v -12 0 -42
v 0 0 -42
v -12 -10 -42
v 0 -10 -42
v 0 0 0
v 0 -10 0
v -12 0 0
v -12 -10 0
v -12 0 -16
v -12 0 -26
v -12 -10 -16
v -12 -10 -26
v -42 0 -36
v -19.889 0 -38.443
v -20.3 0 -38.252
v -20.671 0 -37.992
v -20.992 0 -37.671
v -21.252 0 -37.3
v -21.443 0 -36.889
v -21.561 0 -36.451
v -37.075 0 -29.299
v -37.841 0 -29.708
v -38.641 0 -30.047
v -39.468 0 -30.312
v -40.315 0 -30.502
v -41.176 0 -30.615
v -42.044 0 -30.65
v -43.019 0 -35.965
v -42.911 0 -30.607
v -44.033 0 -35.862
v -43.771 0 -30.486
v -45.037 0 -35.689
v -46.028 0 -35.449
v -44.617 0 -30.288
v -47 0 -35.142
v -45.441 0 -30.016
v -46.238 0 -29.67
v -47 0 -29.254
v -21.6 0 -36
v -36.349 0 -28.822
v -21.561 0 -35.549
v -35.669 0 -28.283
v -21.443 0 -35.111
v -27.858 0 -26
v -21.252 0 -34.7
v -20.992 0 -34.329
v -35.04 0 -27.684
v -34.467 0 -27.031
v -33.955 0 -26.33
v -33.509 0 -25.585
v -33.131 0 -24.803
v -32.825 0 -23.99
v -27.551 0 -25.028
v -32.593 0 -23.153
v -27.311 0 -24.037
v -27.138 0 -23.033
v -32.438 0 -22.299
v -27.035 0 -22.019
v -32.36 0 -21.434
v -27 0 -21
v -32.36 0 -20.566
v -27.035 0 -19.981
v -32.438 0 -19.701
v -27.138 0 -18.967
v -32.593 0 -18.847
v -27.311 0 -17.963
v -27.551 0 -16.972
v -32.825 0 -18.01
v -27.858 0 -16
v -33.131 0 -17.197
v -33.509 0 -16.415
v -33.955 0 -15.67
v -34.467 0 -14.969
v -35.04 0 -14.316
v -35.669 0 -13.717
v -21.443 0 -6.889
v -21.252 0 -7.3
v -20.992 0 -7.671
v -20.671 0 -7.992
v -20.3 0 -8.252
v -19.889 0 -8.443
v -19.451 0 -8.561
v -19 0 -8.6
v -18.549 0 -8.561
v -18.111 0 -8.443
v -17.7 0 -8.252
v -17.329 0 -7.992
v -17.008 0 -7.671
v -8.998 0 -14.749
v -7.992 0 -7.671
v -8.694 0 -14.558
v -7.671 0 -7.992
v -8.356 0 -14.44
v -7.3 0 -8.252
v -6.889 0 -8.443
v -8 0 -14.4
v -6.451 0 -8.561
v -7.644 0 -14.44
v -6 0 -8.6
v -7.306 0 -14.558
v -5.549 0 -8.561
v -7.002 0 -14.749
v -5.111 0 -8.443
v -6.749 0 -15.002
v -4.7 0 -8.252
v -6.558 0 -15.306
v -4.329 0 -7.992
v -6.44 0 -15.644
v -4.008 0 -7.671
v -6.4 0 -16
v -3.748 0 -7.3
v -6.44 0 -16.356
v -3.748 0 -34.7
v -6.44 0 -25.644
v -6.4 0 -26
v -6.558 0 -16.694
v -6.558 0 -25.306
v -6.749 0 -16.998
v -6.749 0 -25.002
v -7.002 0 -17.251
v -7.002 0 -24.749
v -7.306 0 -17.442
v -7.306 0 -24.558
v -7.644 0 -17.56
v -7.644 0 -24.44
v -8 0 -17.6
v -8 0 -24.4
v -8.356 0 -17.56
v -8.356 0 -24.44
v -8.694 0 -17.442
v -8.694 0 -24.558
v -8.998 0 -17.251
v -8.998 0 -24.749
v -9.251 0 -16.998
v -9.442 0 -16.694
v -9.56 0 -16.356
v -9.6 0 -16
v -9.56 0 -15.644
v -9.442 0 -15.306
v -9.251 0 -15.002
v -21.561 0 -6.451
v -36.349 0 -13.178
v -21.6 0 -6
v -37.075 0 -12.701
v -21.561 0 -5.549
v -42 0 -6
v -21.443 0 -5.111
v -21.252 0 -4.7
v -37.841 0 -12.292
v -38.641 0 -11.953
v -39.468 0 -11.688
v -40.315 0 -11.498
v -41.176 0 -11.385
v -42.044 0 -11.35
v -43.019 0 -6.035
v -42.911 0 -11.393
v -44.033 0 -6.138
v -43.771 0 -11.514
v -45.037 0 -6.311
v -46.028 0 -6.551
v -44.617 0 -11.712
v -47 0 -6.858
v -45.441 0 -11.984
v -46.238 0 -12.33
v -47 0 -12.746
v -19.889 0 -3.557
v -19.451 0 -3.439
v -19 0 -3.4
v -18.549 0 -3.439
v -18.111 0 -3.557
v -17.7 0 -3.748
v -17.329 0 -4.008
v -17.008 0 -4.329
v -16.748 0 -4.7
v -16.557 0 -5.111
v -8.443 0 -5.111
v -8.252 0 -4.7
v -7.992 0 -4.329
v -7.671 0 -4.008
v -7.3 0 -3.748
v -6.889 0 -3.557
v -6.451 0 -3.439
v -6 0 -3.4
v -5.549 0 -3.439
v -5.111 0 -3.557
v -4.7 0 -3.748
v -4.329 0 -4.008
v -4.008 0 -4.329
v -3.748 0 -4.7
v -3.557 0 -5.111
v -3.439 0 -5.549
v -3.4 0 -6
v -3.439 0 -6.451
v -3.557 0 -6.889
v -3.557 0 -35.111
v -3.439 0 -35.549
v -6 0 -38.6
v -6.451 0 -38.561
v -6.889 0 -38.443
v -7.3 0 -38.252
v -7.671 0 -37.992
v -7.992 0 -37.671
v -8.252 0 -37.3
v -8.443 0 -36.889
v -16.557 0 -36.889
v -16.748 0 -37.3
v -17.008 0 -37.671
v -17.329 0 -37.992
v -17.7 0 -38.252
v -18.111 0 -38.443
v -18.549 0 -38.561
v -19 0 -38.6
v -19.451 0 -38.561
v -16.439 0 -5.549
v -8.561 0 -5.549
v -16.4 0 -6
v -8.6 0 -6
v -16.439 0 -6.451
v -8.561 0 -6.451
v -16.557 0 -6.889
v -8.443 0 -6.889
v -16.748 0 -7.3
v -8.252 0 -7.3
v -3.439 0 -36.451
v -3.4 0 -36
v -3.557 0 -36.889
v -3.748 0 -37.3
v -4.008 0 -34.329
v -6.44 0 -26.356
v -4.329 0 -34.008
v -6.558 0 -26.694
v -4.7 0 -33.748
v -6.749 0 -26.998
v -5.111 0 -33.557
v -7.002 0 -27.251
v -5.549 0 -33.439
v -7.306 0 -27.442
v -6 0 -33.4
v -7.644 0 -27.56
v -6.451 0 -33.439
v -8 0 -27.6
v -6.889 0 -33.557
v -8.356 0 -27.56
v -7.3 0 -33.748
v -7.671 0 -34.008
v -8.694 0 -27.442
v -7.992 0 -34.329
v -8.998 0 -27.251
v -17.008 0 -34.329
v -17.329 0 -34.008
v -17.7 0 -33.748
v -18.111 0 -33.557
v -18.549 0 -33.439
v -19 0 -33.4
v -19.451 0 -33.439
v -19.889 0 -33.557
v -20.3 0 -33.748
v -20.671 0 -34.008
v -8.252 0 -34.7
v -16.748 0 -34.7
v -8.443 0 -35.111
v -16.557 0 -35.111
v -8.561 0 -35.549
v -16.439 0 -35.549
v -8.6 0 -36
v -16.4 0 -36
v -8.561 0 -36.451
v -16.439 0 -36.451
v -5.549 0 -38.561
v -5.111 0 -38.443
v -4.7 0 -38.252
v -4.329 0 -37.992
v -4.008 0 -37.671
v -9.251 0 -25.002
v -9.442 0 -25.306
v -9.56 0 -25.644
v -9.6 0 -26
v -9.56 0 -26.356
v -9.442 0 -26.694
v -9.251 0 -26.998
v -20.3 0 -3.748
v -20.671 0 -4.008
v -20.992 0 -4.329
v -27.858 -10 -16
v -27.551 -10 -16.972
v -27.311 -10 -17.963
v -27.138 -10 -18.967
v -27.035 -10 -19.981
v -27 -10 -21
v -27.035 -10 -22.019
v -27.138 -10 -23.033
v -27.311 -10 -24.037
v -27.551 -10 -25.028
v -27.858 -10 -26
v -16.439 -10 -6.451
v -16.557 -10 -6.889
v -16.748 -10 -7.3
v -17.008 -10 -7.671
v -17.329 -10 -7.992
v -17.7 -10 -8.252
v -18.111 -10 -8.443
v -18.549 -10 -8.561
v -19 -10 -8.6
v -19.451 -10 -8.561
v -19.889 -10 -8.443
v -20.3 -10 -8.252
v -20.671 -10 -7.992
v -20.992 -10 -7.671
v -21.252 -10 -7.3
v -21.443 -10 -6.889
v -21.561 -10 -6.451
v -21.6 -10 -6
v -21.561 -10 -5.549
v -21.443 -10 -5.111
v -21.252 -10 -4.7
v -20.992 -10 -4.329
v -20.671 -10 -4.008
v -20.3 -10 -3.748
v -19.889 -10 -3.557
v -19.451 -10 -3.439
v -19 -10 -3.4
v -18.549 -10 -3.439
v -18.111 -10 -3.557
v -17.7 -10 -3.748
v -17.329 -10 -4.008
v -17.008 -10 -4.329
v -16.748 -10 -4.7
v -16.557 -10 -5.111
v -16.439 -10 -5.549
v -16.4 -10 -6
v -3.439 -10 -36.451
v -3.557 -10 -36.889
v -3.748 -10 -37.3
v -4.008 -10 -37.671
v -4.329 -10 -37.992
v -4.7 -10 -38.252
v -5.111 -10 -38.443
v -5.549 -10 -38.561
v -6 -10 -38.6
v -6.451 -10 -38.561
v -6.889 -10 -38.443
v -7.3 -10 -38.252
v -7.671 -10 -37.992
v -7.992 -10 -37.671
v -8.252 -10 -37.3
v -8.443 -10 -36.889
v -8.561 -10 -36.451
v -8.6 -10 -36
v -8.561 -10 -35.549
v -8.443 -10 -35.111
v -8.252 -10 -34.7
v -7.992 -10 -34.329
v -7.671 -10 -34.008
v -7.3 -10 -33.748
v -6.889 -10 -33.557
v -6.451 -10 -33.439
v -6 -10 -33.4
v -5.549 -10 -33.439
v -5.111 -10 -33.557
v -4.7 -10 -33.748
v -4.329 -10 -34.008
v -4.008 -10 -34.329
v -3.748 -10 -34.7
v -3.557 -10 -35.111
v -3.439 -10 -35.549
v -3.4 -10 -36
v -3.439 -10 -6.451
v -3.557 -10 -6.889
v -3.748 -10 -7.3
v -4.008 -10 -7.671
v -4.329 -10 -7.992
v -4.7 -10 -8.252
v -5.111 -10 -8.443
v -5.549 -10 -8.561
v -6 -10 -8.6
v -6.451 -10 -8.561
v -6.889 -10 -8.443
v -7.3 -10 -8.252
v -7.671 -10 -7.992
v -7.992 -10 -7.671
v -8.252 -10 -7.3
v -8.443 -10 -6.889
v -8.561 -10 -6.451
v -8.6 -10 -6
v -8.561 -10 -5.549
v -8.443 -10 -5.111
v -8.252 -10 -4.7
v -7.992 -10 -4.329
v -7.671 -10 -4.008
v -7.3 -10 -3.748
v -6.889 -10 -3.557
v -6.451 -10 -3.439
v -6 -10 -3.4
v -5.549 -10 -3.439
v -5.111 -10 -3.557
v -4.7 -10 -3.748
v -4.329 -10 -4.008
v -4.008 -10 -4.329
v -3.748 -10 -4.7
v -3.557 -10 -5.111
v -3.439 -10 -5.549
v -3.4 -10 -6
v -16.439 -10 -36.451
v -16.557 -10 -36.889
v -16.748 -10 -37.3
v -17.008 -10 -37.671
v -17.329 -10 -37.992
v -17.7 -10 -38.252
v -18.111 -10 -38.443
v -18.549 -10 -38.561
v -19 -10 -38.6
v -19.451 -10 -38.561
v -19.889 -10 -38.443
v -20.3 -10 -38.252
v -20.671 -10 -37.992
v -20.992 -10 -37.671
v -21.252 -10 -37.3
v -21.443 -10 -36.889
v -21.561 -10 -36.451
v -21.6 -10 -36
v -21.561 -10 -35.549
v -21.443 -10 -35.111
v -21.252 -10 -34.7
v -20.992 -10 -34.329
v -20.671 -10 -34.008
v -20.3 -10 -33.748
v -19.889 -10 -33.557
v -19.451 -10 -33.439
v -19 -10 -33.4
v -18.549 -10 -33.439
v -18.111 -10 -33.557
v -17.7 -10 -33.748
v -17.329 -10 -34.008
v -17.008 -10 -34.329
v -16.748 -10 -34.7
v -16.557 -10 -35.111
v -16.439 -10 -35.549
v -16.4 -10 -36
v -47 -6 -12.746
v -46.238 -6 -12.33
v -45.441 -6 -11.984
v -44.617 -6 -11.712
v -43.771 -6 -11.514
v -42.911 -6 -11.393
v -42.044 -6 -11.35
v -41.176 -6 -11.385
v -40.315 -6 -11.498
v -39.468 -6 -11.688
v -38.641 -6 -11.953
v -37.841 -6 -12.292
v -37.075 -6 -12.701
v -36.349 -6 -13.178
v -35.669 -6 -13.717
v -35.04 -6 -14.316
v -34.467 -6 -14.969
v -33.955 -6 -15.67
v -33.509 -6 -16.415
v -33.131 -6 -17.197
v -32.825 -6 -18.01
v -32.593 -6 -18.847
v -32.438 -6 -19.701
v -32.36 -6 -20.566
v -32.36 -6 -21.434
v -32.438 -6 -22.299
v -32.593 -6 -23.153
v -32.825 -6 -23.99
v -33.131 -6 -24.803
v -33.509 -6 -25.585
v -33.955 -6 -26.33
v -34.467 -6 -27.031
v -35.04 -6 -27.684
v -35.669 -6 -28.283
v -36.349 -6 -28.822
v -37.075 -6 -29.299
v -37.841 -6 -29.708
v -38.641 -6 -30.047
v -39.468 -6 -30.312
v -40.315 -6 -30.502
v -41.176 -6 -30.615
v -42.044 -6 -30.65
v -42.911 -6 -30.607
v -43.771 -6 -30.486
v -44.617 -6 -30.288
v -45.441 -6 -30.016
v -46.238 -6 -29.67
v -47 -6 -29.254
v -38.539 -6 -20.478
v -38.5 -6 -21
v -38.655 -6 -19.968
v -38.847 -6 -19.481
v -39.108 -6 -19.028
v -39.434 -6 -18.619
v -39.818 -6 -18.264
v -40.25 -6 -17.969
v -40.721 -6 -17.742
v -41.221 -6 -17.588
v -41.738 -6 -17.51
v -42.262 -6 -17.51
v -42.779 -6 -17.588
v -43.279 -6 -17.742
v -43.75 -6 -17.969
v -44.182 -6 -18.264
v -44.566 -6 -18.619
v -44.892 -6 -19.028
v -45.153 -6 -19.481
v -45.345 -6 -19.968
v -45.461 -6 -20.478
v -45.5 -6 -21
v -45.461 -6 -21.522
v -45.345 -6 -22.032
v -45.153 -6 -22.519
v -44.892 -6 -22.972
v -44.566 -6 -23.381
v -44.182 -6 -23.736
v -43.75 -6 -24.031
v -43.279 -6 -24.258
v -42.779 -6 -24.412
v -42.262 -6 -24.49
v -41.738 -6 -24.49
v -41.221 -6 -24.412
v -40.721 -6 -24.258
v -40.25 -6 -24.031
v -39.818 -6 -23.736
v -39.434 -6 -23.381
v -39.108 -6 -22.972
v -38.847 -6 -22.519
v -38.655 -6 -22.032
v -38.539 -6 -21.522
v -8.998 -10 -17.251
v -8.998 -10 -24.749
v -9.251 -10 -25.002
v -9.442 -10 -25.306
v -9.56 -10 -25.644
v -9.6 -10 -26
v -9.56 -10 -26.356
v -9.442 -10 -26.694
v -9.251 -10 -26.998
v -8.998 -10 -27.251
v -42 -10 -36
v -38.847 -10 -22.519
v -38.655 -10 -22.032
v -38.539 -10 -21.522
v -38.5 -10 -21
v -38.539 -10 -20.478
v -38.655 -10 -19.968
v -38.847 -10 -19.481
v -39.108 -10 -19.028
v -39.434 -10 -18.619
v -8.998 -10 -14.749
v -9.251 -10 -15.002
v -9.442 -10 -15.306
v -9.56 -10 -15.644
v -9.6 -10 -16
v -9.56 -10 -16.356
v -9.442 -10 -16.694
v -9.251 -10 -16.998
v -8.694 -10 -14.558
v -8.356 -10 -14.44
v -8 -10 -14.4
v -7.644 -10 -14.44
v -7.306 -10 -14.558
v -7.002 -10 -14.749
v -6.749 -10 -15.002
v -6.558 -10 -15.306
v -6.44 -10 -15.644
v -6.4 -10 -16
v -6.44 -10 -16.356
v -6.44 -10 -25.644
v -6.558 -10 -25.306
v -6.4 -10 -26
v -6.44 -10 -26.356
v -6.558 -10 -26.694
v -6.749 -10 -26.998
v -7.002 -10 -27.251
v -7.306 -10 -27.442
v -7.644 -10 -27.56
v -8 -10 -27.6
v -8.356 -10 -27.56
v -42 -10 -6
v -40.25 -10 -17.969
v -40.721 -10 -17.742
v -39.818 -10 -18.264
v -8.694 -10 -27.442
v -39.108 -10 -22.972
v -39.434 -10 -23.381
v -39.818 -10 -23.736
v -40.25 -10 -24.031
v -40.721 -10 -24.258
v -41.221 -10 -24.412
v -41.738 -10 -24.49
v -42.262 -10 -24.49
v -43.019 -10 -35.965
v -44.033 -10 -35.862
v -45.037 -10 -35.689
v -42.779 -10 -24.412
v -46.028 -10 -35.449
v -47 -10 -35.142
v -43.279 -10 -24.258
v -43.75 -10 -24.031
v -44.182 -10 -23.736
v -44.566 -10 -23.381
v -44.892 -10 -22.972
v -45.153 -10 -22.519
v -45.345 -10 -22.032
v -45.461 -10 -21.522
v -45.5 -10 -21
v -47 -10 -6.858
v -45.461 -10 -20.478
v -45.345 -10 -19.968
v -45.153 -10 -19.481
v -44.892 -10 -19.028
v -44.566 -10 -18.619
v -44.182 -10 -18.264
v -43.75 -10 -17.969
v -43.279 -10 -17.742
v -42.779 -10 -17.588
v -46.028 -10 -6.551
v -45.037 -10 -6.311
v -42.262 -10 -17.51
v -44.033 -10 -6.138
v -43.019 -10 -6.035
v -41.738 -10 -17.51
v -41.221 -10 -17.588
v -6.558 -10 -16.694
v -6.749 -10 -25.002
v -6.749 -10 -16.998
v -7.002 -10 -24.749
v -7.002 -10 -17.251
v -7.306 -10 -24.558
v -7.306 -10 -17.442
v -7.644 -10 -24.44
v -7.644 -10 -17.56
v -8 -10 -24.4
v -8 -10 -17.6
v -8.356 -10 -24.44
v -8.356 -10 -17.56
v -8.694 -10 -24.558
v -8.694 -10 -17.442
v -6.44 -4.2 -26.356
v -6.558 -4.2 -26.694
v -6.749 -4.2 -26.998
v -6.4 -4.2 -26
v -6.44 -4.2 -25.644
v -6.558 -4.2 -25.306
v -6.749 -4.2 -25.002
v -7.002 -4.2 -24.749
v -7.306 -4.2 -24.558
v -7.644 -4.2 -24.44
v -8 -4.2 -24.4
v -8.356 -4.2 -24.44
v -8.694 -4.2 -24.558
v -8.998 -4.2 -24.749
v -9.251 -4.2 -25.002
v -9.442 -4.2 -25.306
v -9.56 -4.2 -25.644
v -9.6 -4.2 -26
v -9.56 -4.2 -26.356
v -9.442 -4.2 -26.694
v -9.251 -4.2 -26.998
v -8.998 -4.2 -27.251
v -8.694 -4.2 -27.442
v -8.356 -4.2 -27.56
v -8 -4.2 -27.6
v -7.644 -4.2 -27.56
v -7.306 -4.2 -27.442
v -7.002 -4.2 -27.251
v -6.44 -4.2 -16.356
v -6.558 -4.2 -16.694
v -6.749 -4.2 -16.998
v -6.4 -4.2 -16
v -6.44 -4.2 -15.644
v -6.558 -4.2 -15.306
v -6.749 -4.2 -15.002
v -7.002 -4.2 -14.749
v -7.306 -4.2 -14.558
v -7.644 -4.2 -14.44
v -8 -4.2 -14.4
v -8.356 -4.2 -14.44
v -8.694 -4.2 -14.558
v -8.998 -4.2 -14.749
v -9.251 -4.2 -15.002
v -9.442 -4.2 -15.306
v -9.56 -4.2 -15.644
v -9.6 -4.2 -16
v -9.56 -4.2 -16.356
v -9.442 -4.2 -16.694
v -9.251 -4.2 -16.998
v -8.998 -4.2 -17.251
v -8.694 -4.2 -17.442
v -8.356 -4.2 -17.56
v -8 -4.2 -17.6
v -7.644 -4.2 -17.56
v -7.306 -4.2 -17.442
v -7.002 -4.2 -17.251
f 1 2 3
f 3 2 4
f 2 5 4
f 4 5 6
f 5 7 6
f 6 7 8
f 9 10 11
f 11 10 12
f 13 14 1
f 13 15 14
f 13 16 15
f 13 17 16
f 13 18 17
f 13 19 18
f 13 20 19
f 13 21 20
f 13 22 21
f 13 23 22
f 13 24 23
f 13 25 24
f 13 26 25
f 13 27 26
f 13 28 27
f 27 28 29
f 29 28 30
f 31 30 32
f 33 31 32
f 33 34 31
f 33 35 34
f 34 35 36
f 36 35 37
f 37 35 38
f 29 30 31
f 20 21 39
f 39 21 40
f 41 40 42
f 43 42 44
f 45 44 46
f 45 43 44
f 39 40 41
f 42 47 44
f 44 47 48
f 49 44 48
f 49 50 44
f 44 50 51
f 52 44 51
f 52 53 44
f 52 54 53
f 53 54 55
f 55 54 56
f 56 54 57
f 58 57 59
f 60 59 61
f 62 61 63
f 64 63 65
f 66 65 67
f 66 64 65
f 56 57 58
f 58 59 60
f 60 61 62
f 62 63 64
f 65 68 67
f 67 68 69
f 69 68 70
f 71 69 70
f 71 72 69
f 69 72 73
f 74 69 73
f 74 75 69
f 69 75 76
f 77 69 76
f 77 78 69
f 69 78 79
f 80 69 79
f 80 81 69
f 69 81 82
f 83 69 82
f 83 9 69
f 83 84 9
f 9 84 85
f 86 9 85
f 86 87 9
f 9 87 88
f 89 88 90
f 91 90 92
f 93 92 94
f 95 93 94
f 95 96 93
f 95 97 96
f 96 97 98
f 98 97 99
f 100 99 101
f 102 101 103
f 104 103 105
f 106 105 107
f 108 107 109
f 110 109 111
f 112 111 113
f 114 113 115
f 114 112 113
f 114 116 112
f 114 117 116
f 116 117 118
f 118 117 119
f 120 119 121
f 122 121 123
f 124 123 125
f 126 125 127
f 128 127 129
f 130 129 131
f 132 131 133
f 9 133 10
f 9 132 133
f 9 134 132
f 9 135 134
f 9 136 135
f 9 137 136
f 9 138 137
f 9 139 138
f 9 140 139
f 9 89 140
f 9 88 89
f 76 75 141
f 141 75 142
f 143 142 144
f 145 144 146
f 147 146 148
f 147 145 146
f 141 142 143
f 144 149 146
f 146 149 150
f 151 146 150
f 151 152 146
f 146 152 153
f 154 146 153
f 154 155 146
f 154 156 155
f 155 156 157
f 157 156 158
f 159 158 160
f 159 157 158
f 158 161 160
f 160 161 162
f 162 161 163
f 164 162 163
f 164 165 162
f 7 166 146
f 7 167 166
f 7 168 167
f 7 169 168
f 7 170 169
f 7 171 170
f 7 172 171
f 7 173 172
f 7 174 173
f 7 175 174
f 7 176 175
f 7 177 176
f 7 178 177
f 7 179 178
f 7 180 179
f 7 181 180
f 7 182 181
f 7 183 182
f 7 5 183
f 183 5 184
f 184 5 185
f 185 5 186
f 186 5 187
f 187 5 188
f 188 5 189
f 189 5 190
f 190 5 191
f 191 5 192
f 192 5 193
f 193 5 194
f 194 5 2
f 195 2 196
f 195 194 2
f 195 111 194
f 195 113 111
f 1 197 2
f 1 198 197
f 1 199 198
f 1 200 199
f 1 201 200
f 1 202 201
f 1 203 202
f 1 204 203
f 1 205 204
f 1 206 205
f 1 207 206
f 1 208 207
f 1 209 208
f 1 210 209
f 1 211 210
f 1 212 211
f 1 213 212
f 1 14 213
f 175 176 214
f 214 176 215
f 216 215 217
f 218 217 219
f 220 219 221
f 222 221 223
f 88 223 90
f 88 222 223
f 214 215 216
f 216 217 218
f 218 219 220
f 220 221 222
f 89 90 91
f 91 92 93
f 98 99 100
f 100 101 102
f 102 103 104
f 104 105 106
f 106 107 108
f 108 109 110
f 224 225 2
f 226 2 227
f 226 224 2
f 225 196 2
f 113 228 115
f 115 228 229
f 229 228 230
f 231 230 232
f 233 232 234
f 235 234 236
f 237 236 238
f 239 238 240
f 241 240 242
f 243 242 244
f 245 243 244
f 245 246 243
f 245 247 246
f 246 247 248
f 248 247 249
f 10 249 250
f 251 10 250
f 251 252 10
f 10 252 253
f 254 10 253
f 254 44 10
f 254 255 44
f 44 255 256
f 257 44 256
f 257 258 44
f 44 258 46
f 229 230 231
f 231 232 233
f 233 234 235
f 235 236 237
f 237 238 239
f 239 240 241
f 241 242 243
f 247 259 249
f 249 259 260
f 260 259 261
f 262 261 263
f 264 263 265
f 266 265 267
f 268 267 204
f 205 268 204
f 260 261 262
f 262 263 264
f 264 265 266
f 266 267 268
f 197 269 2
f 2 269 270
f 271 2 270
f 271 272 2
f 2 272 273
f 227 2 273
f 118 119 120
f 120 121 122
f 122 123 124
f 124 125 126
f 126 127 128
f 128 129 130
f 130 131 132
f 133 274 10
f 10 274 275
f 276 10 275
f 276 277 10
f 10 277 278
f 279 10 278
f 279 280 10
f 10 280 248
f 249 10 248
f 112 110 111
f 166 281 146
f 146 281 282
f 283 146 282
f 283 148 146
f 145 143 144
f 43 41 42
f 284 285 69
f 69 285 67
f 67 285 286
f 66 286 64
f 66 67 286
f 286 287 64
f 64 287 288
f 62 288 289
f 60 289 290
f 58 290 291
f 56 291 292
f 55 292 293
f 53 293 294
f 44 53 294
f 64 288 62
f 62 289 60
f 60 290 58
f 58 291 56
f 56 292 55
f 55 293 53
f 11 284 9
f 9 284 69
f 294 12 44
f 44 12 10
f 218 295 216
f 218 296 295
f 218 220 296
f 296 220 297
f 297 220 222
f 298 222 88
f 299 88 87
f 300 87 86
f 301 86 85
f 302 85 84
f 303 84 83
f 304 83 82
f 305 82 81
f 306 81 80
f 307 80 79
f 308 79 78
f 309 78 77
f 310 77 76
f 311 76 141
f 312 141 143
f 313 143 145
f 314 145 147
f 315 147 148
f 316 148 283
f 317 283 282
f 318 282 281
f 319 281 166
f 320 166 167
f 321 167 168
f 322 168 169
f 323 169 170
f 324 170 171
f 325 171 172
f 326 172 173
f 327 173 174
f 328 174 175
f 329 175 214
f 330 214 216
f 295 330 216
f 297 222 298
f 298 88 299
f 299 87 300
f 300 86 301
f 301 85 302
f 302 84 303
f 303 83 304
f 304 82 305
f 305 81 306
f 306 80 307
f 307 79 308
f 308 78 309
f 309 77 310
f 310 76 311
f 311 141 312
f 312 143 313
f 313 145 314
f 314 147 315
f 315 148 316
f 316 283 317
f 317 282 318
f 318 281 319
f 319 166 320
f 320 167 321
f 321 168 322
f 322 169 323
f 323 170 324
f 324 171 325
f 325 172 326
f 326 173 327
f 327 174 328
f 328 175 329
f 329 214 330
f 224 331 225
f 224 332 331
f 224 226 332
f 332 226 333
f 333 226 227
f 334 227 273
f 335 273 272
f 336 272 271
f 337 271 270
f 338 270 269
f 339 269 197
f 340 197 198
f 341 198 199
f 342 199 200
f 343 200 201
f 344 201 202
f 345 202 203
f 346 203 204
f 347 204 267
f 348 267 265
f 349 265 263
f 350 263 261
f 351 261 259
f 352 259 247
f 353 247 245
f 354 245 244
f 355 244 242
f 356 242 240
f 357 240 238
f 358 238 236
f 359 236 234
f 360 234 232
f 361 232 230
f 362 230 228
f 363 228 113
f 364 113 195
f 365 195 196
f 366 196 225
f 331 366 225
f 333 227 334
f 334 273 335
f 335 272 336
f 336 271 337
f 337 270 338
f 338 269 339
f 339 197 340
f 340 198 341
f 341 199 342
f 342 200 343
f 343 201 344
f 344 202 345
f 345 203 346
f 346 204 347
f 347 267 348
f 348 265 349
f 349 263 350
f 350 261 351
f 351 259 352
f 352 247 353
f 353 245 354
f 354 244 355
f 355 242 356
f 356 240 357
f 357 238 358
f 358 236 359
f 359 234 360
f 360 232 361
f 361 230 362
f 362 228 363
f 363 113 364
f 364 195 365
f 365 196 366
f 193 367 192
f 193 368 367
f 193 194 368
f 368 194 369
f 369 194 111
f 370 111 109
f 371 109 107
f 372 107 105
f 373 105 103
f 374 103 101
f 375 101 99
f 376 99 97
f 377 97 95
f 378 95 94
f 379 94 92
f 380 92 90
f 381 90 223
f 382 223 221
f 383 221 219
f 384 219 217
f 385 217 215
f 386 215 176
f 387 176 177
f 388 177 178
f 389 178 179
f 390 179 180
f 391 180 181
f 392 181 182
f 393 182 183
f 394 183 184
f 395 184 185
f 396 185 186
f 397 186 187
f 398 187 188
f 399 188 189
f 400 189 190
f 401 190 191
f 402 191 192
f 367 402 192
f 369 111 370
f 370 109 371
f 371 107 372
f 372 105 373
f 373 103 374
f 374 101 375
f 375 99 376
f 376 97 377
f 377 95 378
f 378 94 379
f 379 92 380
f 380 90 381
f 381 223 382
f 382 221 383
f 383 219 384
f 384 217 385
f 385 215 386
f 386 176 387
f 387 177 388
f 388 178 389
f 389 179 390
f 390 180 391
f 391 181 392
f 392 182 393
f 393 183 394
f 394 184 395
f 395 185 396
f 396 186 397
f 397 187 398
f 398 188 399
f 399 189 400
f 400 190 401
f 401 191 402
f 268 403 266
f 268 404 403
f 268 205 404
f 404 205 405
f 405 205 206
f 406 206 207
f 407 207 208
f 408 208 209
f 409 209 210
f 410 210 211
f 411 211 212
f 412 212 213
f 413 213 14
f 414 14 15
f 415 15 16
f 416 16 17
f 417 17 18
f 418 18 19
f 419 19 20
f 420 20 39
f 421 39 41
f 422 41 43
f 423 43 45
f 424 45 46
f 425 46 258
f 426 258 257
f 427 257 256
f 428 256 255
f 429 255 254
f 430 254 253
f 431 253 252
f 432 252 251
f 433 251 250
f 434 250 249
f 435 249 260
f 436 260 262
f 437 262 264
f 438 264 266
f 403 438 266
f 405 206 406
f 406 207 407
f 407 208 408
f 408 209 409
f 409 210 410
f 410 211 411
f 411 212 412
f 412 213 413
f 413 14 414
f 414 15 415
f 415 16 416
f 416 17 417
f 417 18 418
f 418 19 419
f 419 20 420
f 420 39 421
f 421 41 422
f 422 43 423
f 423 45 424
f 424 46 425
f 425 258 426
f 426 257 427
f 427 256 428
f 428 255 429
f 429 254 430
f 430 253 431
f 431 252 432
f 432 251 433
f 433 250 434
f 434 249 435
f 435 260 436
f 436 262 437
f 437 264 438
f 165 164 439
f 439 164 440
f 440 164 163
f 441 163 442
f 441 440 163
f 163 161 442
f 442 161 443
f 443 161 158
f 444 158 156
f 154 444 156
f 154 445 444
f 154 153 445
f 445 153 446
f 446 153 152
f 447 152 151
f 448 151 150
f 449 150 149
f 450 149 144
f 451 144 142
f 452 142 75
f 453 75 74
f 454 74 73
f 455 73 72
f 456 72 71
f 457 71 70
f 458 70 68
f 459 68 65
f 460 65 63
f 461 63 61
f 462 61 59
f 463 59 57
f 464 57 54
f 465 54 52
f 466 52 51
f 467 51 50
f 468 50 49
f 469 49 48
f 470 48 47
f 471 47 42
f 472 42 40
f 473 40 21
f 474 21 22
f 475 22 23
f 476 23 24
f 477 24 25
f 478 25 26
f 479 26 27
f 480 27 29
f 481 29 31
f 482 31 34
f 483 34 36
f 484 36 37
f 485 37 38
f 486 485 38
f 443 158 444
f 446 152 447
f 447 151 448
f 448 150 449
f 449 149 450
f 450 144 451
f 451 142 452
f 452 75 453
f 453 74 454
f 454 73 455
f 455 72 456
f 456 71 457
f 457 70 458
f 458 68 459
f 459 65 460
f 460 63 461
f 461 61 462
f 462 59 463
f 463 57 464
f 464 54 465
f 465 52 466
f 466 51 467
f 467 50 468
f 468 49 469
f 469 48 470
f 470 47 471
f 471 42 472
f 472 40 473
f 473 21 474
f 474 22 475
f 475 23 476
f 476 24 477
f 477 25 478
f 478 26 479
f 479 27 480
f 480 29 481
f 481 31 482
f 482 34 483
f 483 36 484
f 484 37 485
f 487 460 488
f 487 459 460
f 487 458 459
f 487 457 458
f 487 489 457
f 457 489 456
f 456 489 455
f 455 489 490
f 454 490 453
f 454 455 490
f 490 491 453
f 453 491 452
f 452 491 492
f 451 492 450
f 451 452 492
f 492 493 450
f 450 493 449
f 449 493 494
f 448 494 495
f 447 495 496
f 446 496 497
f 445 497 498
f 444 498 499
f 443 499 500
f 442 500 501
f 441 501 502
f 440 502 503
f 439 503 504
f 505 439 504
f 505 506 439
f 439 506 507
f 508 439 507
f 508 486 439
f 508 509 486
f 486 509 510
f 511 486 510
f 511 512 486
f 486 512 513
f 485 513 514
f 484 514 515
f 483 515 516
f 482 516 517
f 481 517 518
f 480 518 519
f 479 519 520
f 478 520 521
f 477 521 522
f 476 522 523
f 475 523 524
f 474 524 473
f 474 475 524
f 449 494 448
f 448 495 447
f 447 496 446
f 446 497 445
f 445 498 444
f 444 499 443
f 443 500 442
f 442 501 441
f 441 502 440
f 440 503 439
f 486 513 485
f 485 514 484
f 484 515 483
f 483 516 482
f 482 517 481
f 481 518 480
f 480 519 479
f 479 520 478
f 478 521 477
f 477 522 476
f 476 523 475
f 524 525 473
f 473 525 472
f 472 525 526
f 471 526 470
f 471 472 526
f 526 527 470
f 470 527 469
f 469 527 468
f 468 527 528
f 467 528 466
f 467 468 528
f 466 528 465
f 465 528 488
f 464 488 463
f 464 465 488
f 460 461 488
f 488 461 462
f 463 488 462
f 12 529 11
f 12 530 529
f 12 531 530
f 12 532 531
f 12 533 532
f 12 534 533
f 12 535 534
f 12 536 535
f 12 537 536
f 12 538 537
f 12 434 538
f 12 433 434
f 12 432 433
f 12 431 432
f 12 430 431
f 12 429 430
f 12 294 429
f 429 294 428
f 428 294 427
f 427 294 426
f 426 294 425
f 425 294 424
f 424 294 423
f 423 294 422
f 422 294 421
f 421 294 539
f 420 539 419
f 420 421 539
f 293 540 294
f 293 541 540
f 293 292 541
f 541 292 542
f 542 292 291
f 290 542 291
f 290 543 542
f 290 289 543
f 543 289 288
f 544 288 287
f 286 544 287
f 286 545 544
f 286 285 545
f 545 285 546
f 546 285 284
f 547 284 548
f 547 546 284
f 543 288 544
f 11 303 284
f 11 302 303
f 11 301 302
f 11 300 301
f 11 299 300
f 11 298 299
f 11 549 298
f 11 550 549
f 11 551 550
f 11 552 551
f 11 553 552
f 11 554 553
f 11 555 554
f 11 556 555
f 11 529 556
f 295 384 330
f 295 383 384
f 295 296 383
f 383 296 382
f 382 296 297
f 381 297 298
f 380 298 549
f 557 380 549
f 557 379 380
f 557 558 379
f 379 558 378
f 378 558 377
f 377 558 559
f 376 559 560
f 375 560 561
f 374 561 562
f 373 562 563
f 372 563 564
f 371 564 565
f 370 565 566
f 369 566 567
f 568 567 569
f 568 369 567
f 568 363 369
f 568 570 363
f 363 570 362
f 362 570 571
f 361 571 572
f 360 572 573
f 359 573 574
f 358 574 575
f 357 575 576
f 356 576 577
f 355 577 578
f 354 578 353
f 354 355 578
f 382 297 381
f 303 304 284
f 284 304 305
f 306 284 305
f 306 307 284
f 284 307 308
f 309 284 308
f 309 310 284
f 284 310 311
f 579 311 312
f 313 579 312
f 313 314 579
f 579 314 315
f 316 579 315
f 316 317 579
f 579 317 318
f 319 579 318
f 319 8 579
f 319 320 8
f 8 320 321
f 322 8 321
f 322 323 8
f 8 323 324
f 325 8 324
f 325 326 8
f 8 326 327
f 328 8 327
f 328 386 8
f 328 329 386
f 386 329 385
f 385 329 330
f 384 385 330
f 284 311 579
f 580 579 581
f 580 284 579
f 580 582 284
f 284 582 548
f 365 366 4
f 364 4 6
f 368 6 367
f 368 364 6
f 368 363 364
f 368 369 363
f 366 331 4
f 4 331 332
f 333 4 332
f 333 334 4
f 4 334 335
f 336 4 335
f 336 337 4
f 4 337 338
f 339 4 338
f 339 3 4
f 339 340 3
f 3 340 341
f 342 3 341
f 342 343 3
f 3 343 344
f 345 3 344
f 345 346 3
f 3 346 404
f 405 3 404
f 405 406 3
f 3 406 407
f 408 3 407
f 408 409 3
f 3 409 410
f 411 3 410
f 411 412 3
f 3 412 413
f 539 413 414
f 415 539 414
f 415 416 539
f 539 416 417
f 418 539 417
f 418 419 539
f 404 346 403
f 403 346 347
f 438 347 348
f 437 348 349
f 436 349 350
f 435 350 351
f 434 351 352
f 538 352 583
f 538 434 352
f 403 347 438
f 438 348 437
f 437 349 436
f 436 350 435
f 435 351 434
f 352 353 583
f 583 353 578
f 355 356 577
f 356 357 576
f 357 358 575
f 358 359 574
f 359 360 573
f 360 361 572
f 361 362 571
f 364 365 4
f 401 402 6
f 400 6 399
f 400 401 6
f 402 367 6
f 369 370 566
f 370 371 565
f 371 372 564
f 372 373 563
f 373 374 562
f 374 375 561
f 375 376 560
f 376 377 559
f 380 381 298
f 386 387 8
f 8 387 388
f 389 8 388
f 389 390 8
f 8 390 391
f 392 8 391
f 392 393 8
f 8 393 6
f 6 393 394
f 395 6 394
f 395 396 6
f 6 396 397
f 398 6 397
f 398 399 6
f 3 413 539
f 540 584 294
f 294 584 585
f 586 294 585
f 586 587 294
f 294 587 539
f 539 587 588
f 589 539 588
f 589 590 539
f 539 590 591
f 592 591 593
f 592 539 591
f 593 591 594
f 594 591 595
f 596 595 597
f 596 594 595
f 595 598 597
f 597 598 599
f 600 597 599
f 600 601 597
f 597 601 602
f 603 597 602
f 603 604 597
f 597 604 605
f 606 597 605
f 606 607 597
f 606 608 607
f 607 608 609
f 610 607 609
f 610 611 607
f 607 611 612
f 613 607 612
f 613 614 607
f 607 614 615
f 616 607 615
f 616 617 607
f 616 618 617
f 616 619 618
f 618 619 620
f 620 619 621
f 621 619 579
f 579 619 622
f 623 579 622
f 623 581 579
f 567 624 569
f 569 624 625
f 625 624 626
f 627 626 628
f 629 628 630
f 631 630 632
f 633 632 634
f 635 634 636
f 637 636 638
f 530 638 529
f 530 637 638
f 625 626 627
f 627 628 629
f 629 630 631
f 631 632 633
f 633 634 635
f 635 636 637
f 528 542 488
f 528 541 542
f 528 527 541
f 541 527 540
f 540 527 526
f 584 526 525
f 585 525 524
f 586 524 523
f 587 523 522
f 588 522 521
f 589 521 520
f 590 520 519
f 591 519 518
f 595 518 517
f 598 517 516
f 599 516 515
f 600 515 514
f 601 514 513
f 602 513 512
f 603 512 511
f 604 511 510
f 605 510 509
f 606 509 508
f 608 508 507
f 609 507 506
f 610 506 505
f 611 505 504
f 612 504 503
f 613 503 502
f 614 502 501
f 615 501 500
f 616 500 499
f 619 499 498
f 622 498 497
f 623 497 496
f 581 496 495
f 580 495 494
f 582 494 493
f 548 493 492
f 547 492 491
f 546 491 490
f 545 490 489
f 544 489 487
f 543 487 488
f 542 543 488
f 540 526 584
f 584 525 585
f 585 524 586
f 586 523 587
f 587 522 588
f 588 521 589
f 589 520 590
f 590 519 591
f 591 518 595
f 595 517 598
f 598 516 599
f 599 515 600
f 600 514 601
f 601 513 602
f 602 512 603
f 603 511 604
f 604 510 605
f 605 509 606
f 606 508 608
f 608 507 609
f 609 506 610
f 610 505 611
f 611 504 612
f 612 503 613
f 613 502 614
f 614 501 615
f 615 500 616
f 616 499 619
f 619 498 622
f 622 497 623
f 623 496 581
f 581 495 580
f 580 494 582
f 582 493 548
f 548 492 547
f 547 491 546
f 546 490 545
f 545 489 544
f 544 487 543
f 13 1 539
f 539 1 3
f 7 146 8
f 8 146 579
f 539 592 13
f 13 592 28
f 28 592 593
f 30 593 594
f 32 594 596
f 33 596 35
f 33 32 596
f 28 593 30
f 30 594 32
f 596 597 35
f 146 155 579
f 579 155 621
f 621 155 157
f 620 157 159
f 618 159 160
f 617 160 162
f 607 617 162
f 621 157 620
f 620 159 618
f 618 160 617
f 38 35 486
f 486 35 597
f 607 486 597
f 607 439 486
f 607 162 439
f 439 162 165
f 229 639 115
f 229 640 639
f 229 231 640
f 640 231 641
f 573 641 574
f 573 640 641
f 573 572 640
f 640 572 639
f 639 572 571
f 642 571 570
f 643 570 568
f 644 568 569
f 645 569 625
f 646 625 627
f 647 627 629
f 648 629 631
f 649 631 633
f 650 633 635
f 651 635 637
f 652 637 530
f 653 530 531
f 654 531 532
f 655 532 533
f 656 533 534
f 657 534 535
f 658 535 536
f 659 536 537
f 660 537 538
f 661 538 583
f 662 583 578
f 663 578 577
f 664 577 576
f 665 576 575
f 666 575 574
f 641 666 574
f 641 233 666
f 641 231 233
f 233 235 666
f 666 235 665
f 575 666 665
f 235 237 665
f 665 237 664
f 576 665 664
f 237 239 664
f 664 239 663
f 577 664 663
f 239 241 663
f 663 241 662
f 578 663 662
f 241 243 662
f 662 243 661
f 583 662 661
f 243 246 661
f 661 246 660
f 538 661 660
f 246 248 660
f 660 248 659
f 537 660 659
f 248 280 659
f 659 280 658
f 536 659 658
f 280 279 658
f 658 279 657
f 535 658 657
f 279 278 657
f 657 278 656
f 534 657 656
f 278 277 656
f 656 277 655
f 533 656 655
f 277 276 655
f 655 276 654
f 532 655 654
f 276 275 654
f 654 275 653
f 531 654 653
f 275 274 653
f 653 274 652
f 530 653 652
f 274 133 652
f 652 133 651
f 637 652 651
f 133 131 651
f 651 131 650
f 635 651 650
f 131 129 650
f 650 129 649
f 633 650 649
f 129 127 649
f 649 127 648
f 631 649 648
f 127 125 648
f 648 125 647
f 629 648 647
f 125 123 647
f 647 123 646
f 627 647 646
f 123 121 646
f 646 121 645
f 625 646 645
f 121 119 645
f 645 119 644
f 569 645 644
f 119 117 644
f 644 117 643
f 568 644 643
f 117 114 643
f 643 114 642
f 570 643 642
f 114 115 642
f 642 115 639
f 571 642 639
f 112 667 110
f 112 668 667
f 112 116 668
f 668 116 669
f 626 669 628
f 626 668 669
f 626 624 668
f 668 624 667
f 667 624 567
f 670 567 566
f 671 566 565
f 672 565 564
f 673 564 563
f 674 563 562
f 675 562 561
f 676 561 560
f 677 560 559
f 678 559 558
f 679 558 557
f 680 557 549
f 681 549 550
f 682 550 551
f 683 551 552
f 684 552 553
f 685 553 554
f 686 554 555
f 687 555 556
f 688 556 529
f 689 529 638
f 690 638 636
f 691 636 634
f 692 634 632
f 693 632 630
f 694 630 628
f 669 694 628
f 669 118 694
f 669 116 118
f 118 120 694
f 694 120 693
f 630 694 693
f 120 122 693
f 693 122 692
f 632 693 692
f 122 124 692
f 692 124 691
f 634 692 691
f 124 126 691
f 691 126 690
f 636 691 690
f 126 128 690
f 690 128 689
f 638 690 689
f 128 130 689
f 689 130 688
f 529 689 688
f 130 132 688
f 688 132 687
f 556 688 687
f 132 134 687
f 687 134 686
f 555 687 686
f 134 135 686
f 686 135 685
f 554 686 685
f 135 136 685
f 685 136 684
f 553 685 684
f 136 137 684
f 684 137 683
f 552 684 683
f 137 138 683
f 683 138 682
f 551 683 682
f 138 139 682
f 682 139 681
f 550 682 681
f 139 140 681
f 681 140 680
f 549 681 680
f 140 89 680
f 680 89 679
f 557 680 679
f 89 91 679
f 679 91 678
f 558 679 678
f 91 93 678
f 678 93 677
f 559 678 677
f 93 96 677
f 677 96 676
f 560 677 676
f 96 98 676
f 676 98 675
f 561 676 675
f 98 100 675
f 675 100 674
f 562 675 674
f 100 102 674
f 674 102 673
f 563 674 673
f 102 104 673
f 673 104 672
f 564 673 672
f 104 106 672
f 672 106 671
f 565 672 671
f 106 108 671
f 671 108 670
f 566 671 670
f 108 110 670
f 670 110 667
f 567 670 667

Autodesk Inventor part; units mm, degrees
ref_plane "YZ Plane" through (0, 0, 0) normal (1, 0, 0) x (0, 1, 0)
ref_plane "XZ Plane" through (0, 0, 0) normal (0, 1, 0) x (-1, 0, 0)
ref_plane "XY Plane" through (0, 0, 0) normal (0, 0, 1) x (1, 0, 0)
sketch "Sketch1" plane through (0, 0, 0) normal (0, 1, 0) x (-1, 0, 0)
  line L0 (0, 0) -> (0, -42)
  line L1 (0, -42) -> (12, -42)
  line L2 (12, -42) -> (12, 0)
  line L3 (12, 0) -> (0, 0)
  line L4 (0, -21) -> (0, -26)
  line L5 (0, -21) -> (0, -16)
  line L6 (0, -16) -> (0, -19)
  line L7 (0, -16) -> (0, -13)
  line L8 (0, -26) -> (0, -23)
  line L9 (0, -26) -> (0, -29)
  line L10 (0, -29) -> (12, -29)
  line L11 (0, -13) -> (12, -13)
  line L12 (6.4, -16) -> (12, -16)
  line L13 (6.4, -26) -> (12, -26)
  line L14 (12, -16) -> (8, -16)
  circle A0 centre (8, -16) radius 1.6
  circle A1 centre (8, -26) radius 1.6
  line L15 (12, -26) -> (8, -26)
  dimension "d9" = 3.2
  dimension "d10" = 3.2
  dimension "d0" = 42
  dimension "d1" = 12
  dimension "d2" = 5
  dimension "d3" = 5
  dimension "d4" = 3
  dimension "d5" = 3
  dimension "d6" = 3
  dimension "d7" = 3
  dimension "d8" = 4
extrude "Extrusion1" add sketch "Sketch1" along normal blind 15
sketch "Sketch2" plane through (0, 0, 0) normal (0, -1, 0) x (1, 0, 0)
  line L0 (-12, 0) -> (-12, -42)
  line L1 (-12, -42) -> (-12, 0) projected
  line L2 (-12, -21) -> (-42, -21)
  circle A0 centre (-42, -21) radius 3.5
  arc A1 (-47, -35.1421) -> (-47, -6.8579) centre (-42, -21) ccw
  line L3 (-42, -21) -> (-47, -21)
  line L4 (-47, -21) -> (-47, -35.1421)
  line L5 (-47, -21) -> (-47, -6.8579)
  line L6 (-42, -36) -> (-12, -42)
  line L7 (-42, -6) -> (-12, 0)
  line L8 (-12, -42) -> (0, -42)
  line L9 (0, -42) -> (0, 0)
  line L10 (0, 0) -> (0, -42) projected
  line L11 (0, 0) -> (-12, 0)
  circle A2 centre (-8, -16) radius 1.6 projected
  circle A3 centre (-8, -16) radius 1.6
  circle A4 centre (-8, -26) radius 1.6 projected
  circle A5 centre (-8, -26) radius 1.6
  line L12 (-12, -42) -> (-12, -36.5)
  line L13 (-12, 0) -> (-12, -5.5)
  line L14 (-17, -6.5) -> (-32.2985, -9.5597)
  line L15 (-32.2985, -32.4403) -> (-17, -35.5)
  circle A6 centre (-42, -21) radius 5
  line L16 (-12, -21) -> (-17, -21)
  line L17 (-17, -16) -> (-17, -6.5)
  line L18 (-17, -26) -> (-17, -35.5)
  line L19 (-42, -16) -> (-33.9223, -16)
  line L20 (-27.8579, -16) -> (-12, -16)
  line L21 (-42, -26) -> (-33.9223, -26)
  line L22 (-27.8579, -26) -> (-12, -26)
  arc A7 (-47, -29.2536) -> (-47, -12.7464) centre (-42, -21) ccw
  line L23 (-12, -21) -> (-12, -31)
  line L24 (-12, -31) -> (-25, -31)
  line L25 (-25, -31) -> (-25, -41)
  line L26 (-25, -41) -> (0, -41)
  line L27 (-12, -21) -> (-12, -11)
  line L28 (-12, -11) -> (-25, -11)
  line L29 (-25, -11) -> (-25, -1)
  line L30 (-25, -1) -> (0, -1)
  line L31 (0, -1) -> (0, -6)
  line L32 (0, -6) -> (-6, -6)
  line L33 (-25, -1) -> (-25, -6)
  line L34 (-25, -6) -> (-19, -6)
  line L35 (-25, -31) -> (-25, -36)
  line L36 (-25, -36) -> (-19, -36)
  circle A8 centre (-19, -36) radius 2.6
  line L37 (0, -41) -> (0, -36)
  line L38 (0, -36) -> (-6, -36)
  circle A9 centre (-6, -36) radius 2.6
  circle A10 centre (-6, -6) radius 2.6
  circle A11 centre (-19, -6) radius 2.6
  line L39 (-27.8579, -16) -> (-12, -16)
  line L40 (-12, -16) -> (-12, -26)
  line L41 (-12, -26) -> (-27.8579, -26)
  point P0 (-47, -12.9223)
  point P1 (-47, -29.0777)
  dimension "d13" = 30
  dimension "d14" = 7
  dimension "d16" = 30
  dimension "d17" = 5
  dimension "d30" = 5.5
  dimension "d31" = 5.5
  dimension "d32" = 10
  dimension "d33" = 5
  dimension "d36" = 19.3
  dimension "d39" = 10
  dimension "d40" = 13
  dimension "d41" = 10
  dimension "d42" = 25
  dimension "d48" = 10
  dimension "d49" = 13
  dimension "d50" = 10
  dimension "d51" = 25
  dimension "d52" = 5
  dimension "d53" = 6
  dimension "d54" = 6
  dimension "d55" = 5
  dimension "d56" = 6
  dimension "d57" = 5.2
  dimension "d58" = 5
  dimension "d59" = 6
  dimension "d60" = 5.2
  dimension "d61" = 5.2
  dimension "d62" = 5.2
extrude "Extrusion2" add sketch "Sketch2" along normal blind 10 contours A9 | A10 | L0 L30 L9 L26 | L0 L28 L17 A11 L34 L29 L7 L30 | L0 L20 L17 L28 | L30 L7 L0 | L0 L11 L9 L30 | L0 L2 A1 L20 | L28 L29 L14 A11 L17 | L17 L20 A1 L14 L29 L28 | L0 L22 A1 L2 | A11 L14 L17 | L17 L14 A11 | L29 L14 A1 L7 | L0 L24 L18 L22 | A1 L2 A7 L5 | L14 L29 L34 A11 | L0 L26 L6 L25 L36 A8 L18 L24 | L18 L24 L25 L15 A1 L22 | A1 L4 A7 L2 | L9 L8 L0 L26 | L18 A8 L15 L25 L24 | A7 L4 A6 L2 | L2 A6 L5 A7 | L0 L6 L26 | A8 L15 L18 | L18 L15 A8 | L15 L25 L6 A1 | A6 L3 A0 L2 | L2 A0 L3 A6 | A8 L36 L25 L15
extrude "Extrusion6" cut sketch "Sketch2" along normal blind 6 contours A7 L4 A6 L2 | L2 A6 L5 A7 | A6 L3 A0 L2 | L2 A0 L3 A6
extrude "Extrusion7" cut sketch "Sketch2" along normal mid plane 40 contours A9 | A10 | L0 L2 A1 L20 | L0 L22 A1 L2 | A11 L14 L17 | L17 L14 A11 | A8 L15 L18 | L18 L15 A8
extrude "Extrusion8" cut sketch "Sketch2" against normal blind 40 contours A9 | A10 | L0 L30 L9 L26 | L0 L28 L17 A11 L34 L29 L7 L30 | L0 L11 L9 L30 | L28 L29 L14 A11 L17 | L7 L29 L30 | L14 L29 L34 A11 | L0 L26 L6 L25 L36 A8 L18 L24 | L9 L8 L0 L26 | L18 A8 L15 L25 L24 | L26 L25 L6 | A8 L36 L25 L15 | A2 | A4
properties part number "servo_clip_holder2_final"
